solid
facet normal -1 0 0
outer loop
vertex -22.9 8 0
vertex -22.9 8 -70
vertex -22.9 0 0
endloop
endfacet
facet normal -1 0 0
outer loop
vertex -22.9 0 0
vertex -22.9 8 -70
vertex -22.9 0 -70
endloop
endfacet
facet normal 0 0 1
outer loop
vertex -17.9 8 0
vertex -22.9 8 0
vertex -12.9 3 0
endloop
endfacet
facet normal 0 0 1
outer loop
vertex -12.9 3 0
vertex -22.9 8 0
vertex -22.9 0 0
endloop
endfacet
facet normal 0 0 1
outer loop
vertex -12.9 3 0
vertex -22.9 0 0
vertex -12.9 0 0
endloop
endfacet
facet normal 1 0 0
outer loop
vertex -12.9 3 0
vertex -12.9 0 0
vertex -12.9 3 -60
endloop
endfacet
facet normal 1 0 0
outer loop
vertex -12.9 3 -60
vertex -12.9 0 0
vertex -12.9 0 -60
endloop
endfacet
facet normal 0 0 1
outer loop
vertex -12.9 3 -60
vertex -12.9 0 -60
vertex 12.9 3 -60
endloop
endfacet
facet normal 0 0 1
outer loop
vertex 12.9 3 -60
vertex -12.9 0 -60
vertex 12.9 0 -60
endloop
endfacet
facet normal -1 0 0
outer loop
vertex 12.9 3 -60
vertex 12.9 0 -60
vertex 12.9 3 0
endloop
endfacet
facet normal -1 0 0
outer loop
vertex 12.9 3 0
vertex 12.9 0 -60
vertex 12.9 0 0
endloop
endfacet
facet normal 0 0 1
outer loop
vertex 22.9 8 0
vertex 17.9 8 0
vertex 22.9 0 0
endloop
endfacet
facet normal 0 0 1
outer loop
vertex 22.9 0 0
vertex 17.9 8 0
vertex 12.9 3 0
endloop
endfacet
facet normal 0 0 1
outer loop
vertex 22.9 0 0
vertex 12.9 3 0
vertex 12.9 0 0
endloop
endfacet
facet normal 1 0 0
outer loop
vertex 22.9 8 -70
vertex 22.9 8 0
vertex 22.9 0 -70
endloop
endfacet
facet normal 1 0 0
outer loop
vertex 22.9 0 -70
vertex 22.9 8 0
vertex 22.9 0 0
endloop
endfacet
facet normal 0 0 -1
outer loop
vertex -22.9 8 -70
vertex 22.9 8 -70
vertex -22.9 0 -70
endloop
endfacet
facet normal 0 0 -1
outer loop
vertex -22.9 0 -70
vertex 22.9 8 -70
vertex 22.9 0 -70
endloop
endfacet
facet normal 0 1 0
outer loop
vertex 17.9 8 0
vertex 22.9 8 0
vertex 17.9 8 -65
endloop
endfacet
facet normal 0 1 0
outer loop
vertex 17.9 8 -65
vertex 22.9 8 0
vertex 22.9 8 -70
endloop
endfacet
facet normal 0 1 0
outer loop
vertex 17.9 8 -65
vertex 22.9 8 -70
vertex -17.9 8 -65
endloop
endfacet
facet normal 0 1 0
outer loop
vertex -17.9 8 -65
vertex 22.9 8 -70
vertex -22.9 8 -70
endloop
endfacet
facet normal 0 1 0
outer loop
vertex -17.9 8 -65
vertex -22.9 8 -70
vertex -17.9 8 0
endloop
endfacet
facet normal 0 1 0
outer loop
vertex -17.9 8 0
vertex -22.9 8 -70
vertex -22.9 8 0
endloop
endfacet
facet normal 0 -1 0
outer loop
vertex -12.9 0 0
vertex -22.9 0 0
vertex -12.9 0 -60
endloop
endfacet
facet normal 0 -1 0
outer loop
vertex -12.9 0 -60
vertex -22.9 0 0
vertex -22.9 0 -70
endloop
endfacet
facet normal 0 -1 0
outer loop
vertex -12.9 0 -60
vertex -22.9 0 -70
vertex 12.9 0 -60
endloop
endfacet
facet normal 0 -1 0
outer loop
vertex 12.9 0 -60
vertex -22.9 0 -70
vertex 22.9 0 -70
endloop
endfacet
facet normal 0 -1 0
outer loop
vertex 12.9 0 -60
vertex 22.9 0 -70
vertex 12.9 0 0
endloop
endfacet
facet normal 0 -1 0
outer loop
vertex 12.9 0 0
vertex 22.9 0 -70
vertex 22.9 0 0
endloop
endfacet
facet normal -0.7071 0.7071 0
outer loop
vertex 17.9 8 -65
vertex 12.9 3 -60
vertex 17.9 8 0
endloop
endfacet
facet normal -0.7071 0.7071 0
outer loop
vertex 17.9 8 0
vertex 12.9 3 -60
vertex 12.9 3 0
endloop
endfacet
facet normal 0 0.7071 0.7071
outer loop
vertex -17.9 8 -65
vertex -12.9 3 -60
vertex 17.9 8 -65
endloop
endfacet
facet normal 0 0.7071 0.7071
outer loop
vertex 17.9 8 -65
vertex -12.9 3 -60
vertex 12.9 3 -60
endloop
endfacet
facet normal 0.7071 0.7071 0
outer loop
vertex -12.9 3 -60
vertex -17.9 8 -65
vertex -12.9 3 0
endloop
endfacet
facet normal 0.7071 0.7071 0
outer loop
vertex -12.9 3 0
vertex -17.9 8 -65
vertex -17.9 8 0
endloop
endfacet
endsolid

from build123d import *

# Parameters (mm, degrees)
BOSS_EXTRUDE1_DEPTH = 8
CHAMFER1_SIZE       = 5


with BuildPart() as part:
    # Sketch1 → Boss-Extrude1 (new body)
    with BuildSketch(Plane(origin=(0, 0, 0), x_dir=(1, 0, 0), z_dir=(0, 1, 0))):
        Polygon((-22.9, 0), (-12.9, 0), (-12.9, 60), (12.9, 60), (12.9, 0), (22.9, 0), (22.9, 70), (-22.9, 70), align=None)
    extrude(amount=BOSS_EXTRUDE1_DEPTH)

    # Chamfer1
    chamfer1_edges = [part.edges().sort_by_distance(p)[0] for p in [
        (-12.9, 8, -30),
        (0, 8, -60),
        (12.9, 8, -30),
    ]]
    chamfer(chamfer1_edges, length=CHAMFER1_SIZE)


solid = part.part
